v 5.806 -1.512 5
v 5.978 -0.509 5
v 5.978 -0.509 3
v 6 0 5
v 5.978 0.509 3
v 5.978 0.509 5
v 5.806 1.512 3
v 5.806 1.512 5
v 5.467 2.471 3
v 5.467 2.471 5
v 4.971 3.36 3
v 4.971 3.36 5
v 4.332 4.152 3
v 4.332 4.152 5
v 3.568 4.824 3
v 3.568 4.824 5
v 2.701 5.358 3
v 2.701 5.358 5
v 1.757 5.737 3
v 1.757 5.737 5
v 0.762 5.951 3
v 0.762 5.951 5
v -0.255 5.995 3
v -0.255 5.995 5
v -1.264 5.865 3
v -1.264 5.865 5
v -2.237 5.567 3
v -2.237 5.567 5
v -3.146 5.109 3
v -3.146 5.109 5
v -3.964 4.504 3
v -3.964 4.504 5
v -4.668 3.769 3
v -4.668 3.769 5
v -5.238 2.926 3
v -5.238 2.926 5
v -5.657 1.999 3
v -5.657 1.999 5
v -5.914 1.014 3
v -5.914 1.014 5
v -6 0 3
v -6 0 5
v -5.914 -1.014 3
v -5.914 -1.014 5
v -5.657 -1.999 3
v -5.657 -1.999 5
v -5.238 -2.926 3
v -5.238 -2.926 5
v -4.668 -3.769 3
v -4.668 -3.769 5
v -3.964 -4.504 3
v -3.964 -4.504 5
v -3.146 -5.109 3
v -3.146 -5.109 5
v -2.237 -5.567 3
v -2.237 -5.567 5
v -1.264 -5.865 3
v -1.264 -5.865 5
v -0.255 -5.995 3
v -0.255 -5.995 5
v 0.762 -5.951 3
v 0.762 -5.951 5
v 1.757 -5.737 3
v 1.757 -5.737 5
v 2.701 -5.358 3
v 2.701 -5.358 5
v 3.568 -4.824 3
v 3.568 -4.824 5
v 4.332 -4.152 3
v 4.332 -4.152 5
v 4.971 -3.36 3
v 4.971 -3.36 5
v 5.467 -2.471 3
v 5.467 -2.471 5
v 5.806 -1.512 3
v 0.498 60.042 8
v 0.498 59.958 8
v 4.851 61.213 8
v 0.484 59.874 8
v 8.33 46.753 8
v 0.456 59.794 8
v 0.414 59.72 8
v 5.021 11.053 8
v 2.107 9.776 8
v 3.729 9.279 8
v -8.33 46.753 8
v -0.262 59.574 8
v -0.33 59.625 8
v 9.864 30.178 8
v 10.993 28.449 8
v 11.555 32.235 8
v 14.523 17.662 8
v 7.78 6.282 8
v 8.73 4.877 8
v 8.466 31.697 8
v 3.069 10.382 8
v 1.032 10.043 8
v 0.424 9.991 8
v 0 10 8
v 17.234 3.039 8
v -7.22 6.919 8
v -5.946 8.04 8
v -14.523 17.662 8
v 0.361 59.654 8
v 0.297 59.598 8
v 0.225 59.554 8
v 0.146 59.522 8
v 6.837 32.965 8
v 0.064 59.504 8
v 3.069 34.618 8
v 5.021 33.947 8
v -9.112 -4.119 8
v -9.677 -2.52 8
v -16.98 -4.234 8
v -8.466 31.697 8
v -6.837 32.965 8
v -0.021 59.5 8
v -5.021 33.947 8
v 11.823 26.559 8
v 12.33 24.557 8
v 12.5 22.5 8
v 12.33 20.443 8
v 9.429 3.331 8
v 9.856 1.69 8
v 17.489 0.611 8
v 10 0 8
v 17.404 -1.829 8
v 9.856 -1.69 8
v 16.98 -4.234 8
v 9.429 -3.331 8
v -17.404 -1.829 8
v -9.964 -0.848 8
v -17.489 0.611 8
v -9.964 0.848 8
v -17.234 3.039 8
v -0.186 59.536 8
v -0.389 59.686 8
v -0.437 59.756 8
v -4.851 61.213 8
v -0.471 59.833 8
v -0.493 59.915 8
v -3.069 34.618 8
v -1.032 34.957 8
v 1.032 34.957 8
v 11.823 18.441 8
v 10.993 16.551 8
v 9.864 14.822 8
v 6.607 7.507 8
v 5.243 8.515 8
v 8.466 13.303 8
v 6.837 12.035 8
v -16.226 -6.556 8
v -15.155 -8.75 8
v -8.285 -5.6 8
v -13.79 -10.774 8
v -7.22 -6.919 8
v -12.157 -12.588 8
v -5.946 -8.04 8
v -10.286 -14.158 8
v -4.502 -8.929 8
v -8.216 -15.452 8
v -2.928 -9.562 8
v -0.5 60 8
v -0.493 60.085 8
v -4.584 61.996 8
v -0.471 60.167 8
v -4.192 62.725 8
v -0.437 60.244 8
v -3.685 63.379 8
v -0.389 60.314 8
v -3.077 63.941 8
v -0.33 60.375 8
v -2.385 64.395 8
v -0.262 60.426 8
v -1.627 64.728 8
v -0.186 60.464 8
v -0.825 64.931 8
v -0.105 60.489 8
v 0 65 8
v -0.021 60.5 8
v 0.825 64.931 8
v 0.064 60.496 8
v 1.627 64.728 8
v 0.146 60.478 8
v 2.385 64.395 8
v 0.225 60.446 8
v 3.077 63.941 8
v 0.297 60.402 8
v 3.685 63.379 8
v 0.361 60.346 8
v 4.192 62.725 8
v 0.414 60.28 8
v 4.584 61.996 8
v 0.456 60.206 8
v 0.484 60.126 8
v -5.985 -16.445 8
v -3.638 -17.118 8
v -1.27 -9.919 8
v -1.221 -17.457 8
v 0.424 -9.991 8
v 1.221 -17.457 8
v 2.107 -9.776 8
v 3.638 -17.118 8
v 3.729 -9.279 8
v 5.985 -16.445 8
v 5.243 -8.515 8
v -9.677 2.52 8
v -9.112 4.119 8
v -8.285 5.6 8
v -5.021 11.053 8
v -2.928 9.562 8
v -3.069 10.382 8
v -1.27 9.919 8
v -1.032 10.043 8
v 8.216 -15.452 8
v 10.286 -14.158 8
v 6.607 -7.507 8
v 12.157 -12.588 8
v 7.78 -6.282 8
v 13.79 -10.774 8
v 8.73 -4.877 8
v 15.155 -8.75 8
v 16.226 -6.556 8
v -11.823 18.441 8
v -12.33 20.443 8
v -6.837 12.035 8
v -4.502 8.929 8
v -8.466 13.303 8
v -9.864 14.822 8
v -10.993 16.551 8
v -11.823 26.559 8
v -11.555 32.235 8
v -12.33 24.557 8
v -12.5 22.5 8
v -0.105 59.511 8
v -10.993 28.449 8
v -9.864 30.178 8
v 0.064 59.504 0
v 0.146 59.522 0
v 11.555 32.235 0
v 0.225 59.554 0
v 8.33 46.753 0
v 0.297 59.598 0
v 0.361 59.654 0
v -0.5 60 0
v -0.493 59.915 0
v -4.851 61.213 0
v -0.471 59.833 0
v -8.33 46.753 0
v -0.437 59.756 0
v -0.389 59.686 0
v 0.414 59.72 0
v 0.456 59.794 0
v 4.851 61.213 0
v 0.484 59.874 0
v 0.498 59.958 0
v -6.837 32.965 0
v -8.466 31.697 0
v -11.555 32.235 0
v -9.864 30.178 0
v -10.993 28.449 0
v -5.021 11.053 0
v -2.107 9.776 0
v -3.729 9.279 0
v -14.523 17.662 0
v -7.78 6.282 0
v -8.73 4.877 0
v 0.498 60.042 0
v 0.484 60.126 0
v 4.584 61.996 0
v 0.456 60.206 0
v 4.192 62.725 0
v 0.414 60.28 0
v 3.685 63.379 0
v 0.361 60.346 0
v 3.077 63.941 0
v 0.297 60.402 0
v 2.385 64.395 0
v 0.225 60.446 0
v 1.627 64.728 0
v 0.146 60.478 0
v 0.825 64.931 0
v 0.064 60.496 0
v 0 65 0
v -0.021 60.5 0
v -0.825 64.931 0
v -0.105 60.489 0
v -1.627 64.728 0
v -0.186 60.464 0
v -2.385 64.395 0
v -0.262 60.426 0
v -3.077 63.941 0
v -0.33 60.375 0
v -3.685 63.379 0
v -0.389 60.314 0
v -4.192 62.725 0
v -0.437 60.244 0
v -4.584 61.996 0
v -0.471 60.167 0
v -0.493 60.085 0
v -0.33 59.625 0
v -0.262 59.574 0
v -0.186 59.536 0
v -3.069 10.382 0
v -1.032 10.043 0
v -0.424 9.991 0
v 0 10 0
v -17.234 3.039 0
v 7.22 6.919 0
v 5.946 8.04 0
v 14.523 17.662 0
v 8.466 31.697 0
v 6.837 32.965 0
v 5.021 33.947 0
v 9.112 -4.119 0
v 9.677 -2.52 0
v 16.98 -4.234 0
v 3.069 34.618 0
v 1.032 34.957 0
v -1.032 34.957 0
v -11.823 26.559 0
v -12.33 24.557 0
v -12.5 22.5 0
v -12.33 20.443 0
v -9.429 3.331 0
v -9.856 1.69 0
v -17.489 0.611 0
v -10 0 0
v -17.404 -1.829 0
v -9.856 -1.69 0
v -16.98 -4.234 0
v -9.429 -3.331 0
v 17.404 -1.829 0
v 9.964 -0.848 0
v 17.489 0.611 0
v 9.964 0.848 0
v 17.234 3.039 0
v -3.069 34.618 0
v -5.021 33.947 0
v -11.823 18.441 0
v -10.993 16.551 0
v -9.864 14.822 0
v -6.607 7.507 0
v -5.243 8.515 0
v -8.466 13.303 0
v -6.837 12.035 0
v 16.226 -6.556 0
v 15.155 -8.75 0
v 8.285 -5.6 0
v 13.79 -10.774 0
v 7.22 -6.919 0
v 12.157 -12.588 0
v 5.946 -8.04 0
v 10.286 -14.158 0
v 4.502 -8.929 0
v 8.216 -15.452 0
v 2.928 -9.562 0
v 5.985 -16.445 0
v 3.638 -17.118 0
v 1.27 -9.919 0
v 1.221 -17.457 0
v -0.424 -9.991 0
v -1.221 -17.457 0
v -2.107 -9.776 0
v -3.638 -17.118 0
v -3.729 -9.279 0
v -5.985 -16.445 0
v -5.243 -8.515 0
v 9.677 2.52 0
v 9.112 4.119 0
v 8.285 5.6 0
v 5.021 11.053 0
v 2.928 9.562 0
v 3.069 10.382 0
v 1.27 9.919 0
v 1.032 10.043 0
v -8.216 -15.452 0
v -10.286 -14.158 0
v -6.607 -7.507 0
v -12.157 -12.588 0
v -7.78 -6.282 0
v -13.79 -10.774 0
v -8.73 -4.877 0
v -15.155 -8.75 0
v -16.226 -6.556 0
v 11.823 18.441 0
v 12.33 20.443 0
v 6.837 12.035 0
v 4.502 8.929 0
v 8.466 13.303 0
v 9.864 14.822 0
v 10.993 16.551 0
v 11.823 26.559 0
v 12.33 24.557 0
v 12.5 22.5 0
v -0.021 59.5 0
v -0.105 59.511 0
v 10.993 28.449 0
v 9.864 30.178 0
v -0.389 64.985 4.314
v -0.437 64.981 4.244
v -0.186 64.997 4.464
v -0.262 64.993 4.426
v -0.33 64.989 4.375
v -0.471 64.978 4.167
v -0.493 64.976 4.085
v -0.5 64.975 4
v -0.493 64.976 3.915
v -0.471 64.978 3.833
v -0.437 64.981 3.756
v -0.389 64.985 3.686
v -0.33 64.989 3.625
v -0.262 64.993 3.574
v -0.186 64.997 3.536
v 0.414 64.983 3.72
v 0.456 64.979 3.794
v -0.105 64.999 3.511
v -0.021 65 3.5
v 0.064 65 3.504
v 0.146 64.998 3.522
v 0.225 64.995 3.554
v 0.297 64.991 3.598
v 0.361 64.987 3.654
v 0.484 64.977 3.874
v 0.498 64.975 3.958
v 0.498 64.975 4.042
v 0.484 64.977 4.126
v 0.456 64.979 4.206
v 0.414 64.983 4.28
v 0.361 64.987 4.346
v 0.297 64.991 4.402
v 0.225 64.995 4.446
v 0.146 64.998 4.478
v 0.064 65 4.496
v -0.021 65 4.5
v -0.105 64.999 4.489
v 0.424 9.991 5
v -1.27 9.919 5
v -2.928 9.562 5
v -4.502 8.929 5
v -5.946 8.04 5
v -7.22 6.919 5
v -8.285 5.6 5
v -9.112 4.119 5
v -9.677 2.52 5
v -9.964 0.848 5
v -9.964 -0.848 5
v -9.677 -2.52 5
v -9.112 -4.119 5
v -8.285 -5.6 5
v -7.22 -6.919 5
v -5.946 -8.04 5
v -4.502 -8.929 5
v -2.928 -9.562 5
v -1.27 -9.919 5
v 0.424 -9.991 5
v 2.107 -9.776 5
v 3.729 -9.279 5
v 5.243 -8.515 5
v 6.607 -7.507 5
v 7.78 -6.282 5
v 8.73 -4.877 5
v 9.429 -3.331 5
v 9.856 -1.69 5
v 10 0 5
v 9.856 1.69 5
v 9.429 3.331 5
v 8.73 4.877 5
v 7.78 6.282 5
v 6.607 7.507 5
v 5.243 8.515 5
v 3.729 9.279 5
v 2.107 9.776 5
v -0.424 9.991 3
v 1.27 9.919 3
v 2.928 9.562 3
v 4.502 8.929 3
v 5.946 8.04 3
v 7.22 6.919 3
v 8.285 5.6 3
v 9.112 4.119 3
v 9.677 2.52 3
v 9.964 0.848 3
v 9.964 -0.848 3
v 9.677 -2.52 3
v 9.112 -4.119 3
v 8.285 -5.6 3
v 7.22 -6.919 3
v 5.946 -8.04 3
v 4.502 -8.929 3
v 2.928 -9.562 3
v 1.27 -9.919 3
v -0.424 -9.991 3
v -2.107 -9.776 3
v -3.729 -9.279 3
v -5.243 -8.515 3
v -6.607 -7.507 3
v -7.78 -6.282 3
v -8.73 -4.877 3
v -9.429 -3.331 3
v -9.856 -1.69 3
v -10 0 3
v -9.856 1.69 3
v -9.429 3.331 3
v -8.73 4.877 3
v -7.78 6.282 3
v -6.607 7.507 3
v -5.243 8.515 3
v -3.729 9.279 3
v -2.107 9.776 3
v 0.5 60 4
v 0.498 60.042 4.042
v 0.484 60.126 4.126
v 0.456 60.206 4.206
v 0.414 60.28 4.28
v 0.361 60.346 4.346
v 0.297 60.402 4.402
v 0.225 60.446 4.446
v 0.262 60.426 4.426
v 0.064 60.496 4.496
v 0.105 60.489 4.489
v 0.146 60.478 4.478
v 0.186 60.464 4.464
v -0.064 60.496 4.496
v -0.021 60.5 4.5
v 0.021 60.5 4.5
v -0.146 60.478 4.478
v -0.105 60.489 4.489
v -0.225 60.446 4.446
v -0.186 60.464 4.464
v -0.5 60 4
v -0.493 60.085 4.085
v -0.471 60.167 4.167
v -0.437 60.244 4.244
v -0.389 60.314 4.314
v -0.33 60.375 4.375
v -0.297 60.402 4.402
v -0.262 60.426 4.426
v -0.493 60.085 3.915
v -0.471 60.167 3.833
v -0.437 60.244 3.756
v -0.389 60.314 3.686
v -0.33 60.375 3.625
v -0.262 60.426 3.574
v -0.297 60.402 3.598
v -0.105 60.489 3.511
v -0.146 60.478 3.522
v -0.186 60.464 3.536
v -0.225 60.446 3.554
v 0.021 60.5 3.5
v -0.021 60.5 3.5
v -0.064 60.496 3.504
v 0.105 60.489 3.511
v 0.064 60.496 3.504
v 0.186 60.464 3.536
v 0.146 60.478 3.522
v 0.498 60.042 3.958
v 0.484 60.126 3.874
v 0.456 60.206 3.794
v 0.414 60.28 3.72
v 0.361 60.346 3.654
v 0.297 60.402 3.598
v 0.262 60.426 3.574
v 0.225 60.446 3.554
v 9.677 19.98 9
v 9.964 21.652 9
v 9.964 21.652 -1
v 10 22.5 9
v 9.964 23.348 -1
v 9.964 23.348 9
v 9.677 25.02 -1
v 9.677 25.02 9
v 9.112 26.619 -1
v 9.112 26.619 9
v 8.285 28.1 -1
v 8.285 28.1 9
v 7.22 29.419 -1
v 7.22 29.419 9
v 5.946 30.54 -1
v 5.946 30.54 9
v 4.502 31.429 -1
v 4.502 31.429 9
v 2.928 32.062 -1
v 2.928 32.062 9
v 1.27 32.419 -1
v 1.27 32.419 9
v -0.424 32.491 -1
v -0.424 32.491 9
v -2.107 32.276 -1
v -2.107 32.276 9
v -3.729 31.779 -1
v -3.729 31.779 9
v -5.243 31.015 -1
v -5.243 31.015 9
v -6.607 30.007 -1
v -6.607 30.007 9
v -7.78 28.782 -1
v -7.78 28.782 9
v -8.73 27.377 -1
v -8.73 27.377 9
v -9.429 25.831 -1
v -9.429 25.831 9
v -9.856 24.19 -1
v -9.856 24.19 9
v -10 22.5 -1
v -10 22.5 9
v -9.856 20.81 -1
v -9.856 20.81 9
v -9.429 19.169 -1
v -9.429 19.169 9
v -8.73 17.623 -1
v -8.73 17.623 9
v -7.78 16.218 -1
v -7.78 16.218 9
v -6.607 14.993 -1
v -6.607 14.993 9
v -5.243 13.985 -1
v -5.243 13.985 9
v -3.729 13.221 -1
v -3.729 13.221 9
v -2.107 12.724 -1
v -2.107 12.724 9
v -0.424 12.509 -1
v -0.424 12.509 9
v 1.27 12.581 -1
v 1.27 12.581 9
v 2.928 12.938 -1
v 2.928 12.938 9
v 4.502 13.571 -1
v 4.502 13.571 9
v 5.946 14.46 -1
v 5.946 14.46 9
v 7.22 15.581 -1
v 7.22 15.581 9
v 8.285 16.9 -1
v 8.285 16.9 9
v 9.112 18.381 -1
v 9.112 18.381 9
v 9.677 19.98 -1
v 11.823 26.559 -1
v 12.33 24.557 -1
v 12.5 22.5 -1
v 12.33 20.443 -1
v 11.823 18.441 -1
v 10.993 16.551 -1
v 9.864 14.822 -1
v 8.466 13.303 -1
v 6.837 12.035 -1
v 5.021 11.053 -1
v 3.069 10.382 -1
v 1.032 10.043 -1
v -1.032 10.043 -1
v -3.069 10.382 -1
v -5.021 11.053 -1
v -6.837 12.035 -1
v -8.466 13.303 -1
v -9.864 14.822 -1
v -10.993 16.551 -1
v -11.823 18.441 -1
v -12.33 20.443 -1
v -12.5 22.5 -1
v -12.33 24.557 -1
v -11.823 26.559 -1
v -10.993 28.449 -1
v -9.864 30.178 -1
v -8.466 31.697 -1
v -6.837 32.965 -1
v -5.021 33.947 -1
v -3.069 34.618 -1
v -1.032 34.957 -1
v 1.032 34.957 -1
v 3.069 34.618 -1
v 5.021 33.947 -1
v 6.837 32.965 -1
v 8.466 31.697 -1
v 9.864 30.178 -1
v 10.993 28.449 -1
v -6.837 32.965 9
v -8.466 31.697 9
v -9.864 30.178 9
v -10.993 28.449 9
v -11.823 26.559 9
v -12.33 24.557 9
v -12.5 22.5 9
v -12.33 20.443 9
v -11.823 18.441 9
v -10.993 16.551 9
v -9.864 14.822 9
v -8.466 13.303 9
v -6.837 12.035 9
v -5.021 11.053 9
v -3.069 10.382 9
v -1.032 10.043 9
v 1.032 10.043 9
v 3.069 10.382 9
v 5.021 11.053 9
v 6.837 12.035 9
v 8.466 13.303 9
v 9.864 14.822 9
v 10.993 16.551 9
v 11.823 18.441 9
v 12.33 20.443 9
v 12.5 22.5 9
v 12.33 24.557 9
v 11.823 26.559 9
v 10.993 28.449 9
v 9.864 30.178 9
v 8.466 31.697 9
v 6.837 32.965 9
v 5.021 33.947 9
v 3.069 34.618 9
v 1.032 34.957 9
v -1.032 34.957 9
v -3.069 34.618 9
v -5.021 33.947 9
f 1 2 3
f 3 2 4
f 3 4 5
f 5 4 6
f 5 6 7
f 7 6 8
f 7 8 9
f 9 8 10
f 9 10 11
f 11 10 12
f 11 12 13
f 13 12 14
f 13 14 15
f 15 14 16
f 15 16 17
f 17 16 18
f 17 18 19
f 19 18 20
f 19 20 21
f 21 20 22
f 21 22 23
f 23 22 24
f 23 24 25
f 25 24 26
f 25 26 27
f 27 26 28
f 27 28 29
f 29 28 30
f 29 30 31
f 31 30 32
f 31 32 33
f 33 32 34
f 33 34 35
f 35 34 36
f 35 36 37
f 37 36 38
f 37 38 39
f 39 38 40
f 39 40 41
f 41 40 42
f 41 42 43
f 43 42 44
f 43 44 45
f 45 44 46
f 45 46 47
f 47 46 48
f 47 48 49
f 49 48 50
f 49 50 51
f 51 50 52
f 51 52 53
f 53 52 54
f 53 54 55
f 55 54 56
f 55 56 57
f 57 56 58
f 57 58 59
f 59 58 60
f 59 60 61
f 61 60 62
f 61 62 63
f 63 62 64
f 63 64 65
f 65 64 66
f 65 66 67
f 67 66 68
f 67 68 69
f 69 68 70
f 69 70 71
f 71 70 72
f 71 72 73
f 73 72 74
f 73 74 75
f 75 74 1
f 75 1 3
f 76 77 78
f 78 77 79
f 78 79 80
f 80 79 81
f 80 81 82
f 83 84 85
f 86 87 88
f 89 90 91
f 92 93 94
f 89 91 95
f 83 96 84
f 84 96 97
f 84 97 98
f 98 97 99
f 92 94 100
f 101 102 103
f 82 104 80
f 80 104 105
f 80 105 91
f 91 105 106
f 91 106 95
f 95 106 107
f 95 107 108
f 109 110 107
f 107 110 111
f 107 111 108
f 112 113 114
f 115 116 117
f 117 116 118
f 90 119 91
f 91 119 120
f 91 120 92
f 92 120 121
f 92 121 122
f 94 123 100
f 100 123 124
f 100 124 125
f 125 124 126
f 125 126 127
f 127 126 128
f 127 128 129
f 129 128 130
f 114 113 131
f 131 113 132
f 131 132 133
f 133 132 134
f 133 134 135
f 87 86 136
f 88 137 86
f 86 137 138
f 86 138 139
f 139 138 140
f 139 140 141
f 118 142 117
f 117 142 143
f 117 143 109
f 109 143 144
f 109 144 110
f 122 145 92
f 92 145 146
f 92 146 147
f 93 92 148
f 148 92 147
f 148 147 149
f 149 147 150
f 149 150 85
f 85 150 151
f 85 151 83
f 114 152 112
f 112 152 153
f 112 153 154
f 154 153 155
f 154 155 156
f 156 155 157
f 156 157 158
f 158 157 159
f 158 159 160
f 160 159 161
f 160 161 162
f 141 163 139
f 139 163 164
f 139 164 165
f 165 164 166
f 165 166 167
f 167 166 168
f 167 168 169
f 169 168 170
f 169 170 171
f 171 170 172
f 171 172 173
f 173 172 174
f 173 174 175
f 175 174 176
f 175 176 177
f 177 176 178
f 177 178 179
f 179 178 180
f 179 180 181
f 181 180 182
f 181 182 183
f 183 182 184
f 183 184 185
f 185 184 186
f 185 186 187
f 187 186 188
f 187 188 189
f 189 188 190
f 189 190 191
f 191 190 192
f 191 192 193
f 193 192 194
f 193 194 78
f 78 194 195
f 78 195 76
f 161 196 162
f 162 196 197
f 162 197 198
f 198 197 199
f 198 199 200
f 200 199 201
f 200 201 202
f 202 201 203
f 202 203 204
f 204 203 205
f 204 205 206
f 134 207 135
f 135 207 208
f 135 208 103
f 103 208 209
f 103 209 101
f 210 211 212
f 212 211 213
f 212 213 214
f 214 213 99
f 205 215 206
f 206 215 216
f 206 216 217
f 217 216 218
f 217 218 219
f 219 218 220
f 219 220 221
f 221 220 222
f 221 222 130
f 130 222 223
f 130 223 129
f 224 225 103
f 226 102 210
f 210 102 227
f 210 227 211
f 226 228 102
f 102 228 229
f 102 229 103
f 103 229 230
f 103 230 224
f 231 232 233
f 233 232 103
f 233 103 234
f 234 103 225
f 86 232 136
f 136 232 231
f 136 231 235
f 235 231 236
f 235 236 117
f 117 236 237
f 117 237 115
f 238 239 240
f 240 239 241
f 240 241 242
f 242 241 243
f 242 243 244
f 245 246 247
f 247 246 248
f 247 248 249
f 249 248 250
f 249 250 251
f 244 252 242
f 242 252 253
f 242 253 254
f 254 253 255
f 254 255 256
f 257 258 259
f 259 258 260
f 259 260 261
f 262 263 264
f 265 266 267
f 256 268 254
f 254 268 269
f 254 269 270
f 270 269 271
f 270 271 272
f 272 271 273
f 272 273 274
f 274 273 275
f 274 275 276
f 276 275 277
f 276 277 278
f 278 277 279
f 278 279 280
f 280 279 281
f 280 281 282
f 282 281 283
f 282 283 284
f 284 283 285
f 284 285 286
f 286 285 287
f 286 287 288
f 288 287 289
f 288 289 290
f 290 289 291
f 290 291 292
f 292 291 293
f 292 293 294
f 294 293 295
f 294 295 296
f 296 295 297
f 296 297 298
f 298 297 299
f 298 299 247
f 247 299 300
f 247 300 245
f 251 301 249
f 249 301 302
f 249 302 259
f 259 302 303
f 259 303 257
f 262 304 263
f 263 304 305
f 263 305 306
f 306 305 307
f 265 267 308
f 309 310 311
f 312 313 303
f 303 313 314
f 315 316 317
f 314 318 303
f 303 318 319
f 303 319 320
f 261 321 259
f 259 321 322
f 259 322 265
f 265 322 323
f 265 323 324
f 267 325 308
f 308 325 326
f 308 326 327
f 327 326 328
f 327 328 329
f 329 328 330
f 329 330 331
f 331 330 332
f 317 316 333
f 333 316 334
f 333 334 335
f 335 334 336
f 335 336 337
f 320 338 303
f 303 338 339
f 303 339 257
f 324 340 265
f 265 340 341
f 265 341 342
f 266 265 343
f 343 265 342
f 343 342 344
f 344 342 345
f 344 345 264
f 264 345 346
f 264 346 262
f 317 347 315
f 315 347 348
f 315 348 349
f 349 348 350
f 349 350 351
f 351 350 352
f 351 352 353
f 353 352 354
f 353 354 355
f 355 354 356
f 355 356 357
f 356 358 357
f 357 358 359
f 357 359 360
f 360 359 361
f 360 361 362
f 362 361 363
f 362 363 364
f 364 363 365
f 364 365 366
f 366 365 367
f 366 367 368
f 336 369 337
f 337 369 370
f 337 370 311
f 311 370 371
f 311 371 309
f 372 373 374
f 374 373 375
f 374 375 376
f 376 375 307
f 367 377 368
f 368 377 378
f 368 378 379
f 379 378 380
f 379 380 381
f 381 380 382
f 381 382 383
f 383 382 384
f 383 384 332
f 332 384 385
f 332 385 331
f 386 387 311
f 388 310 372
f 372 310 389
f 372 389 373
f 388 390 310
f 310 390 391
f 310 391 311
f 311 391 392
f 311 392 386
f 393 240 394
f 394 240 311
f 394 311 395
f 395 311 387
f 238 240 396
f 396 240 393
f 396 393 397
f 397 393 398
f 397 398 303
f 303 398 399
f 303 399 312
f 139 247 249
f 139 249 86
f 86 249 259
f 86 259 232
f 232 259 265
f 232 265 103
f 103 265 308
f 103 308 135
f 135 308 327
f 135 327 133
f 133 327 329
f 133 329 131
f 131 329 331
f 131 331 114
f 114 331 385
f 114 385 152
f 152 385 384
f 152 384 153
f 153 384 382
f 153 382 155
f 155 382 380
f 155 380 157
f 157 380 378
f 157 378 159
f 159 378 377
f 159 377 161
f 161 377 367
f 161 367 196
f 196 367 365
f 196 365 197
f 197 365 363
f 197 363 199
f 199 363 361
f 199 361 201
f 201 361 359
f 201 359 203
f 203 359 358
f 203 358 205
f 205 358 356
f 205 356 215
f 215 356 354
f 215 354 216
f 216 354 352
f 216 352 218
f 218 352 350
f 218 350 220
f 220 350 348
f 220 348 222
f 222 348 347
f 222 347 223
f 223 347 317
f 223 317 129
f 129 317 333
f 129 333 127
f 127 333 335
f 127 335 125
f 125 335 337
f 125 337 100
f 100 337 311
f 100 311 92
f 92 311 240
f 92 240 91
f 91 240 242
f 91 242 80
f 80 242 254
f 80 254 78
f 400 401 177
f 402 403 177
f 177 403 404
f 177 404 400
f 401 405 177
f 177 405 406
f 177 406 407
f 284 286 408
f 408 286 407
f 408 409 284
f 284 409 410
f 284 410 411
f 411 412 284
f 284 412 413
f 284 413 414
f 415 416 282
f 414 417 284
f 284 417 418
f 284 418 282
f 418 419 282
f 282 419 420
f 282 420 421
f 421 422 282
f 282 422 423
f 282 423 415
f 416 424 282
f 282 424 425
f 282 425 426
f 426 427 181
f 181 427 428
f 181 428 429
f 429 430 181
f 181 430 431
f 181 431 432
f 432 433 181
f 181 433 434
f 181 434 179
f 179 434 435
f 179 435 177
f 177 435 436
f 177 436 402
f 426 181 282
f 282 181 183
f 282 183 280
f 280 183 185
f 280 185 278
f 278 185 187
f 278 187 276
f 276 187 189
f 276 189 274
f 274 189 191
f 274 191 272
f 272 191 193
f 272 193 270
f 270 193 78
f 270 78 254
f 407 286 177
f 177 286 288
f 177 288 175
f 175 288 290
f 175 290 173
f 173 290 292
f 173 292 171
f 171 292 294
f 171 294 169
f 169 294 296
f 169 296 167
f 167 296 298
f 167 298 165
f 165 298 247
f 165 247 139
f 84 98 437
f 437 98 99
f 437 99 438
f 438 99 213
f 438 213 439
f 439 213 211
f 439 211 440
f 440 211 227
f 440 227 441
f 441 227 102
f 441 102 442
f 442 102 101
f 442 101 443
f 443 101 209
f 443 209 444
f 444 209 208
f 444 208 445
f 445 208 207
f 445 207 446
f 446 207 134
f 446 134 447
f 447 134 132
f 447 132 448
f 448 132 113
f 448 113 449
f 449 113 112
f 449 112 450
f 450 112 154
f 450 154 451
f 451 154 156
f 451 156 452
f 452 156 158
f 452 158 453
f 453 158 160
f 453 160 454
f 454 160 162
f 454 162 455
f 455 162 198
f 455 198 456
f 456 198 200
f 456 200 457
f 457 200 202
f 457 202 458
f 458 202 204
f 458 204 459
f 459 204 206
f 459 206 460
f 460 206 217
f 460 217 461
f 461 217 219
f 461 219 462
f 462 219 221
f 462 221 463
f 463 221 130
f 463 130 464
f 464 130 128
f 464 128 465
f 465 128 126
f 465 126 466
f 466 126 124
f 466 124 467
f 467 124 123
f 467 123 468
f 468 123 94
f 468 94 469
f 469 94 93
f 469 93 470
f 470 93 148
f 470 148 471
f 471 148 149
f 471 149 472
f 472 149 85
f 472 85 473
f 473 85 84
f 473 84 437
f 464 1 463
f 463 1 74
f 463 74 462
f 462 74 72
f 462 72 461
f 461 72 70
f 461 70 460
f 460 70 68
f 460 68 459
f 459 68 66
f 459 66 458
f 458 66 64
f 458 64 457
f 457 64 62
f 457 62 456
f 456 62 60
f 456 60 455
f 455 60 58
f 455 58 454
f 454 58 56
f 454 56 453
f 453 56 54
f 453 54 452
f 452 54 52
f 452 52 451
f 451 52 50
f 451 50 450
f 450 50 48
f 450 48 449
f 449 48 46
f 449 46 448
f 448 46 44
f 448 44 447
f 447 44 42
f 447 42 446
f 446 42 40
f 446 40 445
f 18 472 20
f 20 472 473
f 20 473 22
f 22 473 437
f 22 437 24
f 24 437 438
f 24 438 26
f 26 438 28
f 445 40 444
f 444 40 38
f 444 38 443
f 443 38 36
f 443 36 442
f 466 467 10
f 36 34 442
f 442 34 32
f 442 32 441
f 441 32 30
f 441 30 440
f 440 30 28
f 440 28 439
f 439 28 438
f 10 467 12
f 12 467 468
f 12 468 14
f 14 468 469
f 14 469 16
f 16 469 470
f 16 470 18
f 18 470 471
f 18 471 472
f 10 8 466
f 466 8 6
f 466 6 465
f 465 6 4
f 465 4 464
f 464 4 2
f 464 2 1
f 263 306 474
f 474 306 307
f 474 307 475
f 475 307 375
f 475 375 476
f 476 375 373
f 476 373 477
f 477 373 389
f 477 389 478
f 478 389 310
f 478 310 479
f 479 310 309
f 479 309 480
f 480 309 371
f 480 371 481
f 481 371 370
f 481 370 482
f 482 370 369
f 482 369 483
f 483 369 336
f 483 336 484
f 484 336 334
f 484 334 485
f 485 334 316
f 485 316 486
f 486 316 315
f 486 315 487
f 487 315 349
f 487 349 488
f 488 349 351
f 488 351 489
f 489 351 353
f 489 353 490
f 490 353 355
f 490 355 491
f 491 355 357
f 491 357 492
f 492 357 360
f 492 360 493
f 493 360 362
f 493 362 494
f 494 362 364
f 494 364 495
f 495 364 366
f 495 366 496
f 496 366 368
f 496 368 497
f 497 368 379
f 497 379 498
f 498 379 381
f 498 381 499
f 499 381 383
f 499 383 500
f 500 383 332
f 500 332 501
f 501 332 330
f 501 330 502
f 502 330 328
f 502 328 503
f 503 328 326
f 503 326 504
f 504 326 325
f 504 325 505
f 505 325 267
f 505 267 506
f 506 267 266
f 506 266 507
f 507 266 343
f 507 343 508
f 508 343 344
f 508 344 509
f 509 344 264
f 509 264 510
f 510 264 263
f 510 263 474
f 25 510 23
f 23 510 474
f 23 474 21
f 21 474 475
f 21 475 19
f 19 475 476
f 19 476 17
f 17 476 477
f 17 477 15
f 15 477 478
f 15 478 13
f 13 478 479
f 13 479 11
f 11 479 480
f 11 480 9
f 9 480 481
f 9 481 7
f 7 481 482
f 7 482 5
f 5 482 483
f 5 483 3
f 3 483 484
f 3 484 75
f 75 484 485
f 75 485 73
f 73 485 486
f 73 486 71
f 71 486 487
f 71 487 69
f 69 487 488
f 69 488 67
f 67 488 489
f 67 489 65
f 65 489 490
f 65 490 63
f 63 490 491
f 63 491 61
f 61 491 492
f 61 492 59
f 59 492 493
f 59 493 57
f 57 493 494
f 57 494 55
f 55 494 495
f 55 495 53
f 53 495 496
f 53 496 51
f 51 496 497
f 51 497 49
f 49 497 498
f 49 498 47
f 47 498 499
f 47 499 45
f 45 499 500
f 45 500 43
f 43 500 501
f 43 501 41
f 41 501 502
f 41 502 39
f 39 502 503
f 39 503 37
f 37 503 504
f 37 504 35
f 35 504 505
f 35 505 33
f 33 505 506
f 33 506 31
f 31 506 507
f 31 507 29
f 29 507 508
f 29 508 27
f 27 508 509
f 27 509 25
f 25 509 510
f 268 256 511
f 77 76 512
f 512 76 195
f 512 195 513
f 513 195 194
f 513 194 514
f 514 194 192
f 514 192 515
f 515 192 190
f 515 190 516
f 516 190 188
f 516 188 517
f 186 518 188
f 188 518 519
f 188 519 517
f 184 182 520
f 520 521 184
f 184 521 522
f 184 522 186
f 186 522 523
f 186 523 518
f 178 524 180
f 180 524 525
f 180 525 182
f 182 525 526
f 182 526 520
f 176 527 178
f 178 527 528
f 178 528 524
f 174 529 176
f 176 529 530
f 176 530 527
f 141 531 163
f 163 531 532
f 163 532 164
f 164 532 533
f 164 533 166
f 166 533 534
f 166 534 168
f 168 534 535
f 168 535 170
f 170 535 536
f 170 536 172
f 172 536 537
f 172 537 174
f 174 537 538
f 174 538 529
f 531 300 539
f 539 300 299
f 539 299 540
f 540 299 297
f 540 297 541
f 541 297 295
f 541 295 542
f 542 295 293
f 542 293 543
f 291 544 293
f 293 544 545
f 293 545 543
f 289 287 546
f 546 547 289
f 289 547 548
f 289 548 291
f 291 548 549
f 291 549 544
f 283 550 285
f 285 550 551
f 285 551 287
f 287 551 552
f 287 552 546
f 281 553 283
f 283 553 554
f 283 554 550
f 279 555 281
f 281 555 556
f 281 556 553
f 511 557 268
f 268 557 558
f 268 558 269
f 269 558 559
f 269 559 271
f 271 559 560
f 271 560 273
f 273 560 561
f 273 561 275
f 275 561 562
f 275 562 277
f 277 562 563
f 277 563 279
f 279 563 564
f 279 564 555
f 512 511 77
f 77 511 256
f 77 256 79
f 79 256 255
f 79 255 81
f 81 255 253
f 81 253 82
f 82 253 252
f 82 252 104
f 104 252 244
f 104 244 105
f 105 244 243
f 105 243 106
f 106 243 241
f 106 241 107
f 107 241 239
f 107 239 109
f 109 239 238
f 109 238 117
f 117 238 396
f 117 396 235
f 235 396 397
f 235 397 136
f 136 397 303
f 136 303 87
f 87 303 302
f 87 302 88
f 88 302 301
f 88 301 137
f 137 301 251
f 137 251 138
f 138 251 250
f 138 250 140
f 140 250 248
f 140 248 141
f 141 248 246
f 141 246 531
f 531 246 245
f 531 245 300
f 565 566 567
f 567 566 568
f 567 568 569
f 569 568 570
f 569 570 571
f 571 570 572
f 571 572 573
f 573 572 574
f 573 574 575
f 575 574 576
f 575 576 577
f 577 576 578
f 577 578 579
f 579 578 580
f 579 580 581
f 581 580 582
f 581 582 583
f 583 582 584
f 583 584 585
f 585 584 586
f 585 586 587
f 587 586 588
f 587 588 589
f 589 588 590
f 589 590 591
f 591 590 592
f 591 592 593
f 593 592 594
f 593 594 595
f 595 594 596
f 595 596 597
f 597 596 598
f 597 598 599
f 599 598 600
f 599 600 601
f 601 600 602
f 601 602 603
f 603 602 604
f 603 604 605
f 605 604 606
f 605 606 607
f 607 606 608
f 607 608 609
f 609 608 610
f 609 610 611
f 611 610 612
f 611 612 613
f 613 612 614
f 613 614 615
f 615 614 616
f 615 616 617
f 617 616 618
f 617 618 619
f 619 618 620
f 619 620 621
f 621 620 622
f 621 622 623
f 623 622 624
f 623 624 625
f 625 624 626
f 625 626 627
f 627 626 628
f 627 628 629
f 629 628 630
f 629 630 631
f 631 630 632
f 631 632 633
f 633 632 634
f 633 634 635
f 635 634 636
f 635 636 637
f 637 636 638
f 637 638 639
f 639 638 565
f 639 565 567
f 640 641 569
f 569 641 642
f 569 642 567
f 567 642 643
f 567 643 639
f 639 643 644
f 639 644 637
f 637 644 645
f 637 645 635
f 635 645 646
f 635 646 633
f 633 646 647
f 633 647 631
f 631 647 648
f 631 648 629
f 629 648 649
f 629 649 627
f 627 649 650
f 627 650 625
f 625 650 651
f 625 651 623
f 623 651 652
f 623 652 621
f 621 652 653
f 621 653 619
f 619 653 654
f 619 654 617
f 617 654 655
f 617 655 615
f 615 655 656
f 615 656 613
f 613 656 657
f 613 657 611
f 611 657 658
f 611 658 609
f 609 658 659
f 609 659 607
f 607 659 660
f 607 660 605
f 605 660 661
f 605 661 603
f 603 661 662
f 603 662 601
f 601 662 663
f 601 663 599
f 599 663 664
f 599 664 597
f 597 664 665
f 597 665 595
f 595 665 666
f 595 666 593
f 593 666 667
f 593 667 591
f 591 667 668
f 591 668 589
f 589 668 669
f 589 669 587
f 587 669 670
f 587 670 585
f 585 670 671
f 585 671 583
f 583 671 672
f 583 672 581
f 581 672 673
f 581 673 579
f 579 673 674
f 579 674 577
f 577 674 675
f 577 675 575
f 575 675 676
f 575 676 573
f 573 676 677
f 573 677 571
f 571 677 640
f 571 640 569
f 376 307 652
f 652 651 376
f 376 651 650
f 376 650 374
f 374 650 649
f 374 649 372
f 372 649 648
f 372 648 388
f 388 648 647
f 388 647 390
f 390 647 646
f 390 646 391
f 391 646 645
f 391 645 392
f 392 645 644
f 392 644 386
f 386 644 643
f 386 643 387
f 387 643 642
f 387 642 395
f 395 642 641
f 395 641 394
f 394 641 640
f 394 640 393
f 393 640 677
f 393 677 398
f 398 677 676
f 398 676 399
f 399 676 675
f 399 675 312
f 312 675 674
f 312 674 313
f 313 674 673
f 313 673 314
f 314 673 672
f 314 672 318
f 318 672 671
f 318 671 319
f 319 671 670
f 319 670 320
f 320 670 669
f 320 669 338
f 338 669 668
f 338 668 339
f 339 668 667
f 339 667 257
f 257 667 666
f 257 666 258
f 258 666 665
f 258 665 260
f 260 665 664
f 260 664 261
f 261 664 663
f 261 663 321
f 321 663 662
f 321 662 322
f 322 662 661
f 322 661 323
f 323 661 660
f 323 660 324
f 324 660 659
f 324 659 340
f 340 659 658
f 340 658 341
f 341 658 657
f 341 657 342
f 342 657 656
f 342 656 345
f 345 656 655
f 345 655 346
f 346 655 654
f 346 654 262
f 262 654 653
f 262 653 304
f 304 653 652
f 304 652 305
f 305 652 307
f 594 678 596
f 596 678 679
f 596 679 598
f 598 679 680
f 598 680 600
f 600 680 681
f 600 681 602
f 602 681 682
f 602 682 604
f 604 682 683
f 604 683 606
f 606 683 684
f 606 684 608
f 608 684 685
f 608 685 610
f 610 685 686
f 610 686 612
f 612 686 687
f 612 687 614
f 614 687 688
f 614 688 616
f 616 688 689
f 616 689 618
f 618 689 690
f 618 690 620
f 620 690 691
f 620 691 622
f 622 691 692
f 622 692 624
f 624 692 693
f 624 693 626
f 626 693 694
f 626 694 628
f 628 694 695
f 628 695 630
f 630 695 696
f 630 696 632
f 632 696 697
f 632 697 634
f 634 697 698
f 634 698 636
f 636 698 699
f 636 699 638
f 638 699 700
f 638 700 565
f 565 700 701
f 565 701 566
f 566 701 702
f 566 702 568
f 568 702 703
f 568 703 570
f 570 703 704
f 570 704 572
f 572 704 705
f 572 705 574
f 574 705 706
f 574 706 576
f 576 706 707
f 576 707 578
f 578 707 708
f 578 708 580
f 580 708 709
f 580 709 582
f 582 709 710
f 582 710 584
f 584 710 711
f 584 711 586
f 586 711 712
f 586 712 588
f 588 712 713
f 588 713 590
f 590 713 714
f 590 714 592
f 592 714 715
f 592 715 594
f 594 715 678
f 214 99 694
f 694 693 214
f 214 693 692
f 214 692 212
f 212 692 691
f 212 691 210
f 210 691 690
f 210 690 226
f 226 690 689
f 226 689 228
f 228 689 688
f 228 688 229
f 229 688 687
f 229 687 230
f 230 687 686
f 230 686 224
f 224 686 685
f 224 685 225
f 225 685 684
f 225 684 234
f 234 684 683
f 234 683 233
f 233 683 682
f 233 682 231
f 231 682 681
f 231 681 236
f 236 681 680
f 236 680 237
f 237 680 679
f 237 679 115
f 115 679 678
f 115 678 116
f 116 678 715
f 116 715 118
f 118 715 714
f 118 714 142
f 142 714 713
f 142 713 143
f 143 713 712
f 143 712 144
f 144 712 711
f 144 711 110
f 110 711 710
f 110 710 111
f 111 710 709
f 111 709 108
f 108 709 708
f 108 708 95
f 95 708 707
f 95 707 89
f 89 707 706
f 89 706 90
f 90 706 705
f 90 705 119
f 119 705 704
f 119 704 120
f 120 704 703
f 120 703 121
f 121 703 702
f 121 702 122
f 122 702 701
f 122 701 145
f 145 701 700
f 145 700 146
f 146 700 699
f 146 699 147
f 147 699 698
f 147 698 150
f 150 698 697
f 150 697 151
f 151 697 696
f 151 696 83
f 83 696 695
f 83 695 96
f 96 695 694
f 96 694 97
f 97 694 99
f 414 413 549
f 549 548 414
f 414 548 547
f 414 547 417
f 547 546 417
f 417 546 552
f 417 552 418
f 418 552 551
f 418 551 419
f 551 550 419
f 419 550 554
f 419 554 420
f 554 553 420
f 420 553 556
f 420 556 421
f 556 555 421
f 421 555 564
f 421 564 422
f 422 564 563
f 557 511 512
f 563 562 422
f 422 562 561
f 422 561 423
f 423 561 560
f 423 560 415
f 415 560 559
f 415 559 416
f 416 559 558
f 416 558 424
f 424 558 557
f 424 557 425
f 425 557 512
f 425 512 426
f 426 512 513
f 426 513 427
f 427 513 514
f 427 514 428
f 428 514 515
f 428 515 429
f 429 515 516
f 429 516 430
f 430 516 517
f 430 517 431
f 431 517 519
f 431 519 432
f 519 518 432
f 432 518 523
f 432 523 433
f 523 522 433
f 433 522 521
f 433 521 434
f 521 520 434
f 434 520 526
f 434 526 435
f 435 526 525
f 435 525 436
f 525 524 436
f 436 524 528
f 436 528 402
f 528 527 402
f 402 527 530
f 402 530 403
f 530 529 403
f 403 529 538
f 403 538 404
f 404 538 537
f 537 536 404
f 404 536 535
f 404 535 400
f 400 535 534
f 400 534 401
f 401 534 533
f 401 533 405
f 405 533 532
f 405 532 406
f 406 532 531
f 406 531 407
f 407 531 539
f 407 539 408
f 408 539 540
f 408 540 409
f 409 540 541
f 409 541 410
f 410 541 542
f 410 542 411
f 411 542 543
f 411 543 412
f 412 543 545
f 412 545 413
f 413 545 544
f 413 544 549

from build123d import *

# Parameters (mm, degrees)
SKETCH_1_R               = 6
EXTRUDE_2_DEPTH          = 8
CUT_EXTRUDE_START        = -3
SKETCH_2_R               = 10
SKETCH_2_R_2             = 6
CUT_EXTRUDE_1_DEPTH      = 3
SKETCH_3_R               = 10
SKETCH_3_R_2             = 6
CUT_EXTRUDE_2_DEPTH      = 3
SKETCH_5_R               = 0.5
CUT_EXTRUDE_3_DEPTH      = 68.788273322
SKETCH_6_R               = 10
CUT_EXTRUDE_4_DEPTH      = 68.788273322
EXTRUDE_START            = 1
SKETCH_7_R               = 12.5
SKETCH_7_R_2             = 10
EXTRUDE_3_DEPTH          = 1
SKETCH_8_R               = 12.5
SKETCH_8_R_2             = 10
EXTRUDE_4_DEPTH          = 1
CUT_EXTRUDE_5_REACH      = 86.815
CUT_EXTRUDE_5_END_RADIUS = 0.5
SKETCH_10_R              = 0.5


with BuildPart() as part:
    # 草图1 → 凸台-拉伸2 (new body)
    with BuildSketch(Plane.XY):
        with BuildLine():
            ThreePointArc((4.850754193, 61.212511345), (0, 65), (-4.850754193, 61.212511345))
            ThreePointArc((-4.850754193, 61.212511345), (-11.55450868, 32.234679821), (-17.234135678, 3.038843109))
            ThreePointArc((-17.234135678, 3.038843109), (0, -17.5), (17.234135678, 3.038843109))
            ThreePointArc((17.234135678, 3.038843109), (11.55450868, 32.234679821), (4.850754193, 61.212511345))
        make_face()
        Circle(SKETCH_1_R, mode=Mode.SUBTRACT)
    extrude(amount=EXTRUDE_2_DEPTH)

    # 草图2 → 切除-拉伸1 (cut)
    with BuildSketch(Plane.XY.offset(8).offset(CUT_EXTRUDE_START)):
        Circle(SKETCH_2_R)
        Circle(SKETCH_2_R_2, mode=Mode.SUBTRACT)
    extrude(amount=CUT_EXTRUDE_1_DEPTH, mode=Mode.SUBTRACT)

    # 草图3 → 切除-拉伸2 (cut)
    with BuildSketch(Plane(origin=(0, 0, 0), x_dir=(-1, 0, 0), z_dir=(0, 0, -1))):
        with Locations(Location((0, 0, 0), (0, 0, 180))):
            Circle(SKETCH_3_R)
        Circle(SKETCH_3_R_2, mode=Mode.SUBTRACT)
    extrude(amount=-CUT_EXTRUDE_2_DEPTH, mode=Mode.SUBTRACT)

    # 草图5 → 切除-拉伸3 (cut, through all)
    with BuildSketch(Plane(origin=(0, 0, 0), x_dir=(-1, 0, 0), z_dir=(0, 0, -1))):
        with Locations((0, 60)):
            Circle(SKETCH_5_R)
    extrude(amount=-CUT_EXTRUDE_3_DEPTH, mode=Mode.SUBTRACT)

    # 草图6 → 切除-拉伸4 (cut, through all)
    with BuildSketch(Plane(origin=(0, 0, 0), x_dir=(-1, 0, 0), z_dir=(0, 0, -1))):
        with Locations((0, 22.5)):
            Circle(SKETCH_6_R)
    extrude(amount=-CUT_EXTRUDE_4_DEPTH, mode=Mode.SUBTRACT)

    # 草图7 → 凸台-拉伸3 (add)
    with BuildSketch(Plane(origin=(0, 0, 0), x_dir=(-1, 0, 0), z_dir=(0, 0, -1)).offset(EXTRUDE_START)):
        with Locations(Location((0, 22.5, 0), (0, 0, 270))):
            Circle(SKETCH_7_R)
        with Locations((0, 22.5)):
            Circle(SKETCH_7_R_2, mode=Mode.SUBTRACT)
    extrude(amount=-EXTRUDE_3_DEPTH)

    # 草图8 → 凸台-拉伸4 (add)
    with BuildSketch(Plane.XY.offset(8)):
        with Locations(Location((0, 22.5, 0), (0, 0, 270))):
            Circle(SKETCH_8_R)
        with Locations(Location((0, 22.5, 0), (0, 0, 180))):
            Circle(SKETCH_8_R_2, mode=Mode.SUBTRACT)
    extrude(amount=EXTRUDE_4_DEPTH)

    # 切除-拉伸5: up to this cylinder (the profile starts outside it)
    cut_extrude_5_end = Plane(origin=(0, 60, 4), z_dir=(0, 0, -1)) * Cylinder(CUT_EXTRUDE_5_END_RADIUS, 175.63, mode=Mode.PRIVATE)
    # 草图10 → 切除-拉伸5 (cut, up to the surface)
    with BuildSketch(Plane(origin=(0, 65, 0), x_dir=(1, 0, 0), z_dir=(0, 1, 0)), mode=Mode.PRIVATE) as cut_extrude_5_sk1:
        with Locations(Location((0, -4, 0), (0, 0, 180))):
            Circle(SKETCH_10_R)
    cut_extrude_5_tool1 = extrude(cut_extrude_5_sk1.sketch, amount=-CUT_EXTRUDE_5_REACH, mode=Mode.PRIVATE) - cut_extrude_5_end
    add(cut_extrude_5_tool1.solids().sort_by_distance((0, 65, 4))[0], mode=Mode.SUBTRACT)


solid = part.part
